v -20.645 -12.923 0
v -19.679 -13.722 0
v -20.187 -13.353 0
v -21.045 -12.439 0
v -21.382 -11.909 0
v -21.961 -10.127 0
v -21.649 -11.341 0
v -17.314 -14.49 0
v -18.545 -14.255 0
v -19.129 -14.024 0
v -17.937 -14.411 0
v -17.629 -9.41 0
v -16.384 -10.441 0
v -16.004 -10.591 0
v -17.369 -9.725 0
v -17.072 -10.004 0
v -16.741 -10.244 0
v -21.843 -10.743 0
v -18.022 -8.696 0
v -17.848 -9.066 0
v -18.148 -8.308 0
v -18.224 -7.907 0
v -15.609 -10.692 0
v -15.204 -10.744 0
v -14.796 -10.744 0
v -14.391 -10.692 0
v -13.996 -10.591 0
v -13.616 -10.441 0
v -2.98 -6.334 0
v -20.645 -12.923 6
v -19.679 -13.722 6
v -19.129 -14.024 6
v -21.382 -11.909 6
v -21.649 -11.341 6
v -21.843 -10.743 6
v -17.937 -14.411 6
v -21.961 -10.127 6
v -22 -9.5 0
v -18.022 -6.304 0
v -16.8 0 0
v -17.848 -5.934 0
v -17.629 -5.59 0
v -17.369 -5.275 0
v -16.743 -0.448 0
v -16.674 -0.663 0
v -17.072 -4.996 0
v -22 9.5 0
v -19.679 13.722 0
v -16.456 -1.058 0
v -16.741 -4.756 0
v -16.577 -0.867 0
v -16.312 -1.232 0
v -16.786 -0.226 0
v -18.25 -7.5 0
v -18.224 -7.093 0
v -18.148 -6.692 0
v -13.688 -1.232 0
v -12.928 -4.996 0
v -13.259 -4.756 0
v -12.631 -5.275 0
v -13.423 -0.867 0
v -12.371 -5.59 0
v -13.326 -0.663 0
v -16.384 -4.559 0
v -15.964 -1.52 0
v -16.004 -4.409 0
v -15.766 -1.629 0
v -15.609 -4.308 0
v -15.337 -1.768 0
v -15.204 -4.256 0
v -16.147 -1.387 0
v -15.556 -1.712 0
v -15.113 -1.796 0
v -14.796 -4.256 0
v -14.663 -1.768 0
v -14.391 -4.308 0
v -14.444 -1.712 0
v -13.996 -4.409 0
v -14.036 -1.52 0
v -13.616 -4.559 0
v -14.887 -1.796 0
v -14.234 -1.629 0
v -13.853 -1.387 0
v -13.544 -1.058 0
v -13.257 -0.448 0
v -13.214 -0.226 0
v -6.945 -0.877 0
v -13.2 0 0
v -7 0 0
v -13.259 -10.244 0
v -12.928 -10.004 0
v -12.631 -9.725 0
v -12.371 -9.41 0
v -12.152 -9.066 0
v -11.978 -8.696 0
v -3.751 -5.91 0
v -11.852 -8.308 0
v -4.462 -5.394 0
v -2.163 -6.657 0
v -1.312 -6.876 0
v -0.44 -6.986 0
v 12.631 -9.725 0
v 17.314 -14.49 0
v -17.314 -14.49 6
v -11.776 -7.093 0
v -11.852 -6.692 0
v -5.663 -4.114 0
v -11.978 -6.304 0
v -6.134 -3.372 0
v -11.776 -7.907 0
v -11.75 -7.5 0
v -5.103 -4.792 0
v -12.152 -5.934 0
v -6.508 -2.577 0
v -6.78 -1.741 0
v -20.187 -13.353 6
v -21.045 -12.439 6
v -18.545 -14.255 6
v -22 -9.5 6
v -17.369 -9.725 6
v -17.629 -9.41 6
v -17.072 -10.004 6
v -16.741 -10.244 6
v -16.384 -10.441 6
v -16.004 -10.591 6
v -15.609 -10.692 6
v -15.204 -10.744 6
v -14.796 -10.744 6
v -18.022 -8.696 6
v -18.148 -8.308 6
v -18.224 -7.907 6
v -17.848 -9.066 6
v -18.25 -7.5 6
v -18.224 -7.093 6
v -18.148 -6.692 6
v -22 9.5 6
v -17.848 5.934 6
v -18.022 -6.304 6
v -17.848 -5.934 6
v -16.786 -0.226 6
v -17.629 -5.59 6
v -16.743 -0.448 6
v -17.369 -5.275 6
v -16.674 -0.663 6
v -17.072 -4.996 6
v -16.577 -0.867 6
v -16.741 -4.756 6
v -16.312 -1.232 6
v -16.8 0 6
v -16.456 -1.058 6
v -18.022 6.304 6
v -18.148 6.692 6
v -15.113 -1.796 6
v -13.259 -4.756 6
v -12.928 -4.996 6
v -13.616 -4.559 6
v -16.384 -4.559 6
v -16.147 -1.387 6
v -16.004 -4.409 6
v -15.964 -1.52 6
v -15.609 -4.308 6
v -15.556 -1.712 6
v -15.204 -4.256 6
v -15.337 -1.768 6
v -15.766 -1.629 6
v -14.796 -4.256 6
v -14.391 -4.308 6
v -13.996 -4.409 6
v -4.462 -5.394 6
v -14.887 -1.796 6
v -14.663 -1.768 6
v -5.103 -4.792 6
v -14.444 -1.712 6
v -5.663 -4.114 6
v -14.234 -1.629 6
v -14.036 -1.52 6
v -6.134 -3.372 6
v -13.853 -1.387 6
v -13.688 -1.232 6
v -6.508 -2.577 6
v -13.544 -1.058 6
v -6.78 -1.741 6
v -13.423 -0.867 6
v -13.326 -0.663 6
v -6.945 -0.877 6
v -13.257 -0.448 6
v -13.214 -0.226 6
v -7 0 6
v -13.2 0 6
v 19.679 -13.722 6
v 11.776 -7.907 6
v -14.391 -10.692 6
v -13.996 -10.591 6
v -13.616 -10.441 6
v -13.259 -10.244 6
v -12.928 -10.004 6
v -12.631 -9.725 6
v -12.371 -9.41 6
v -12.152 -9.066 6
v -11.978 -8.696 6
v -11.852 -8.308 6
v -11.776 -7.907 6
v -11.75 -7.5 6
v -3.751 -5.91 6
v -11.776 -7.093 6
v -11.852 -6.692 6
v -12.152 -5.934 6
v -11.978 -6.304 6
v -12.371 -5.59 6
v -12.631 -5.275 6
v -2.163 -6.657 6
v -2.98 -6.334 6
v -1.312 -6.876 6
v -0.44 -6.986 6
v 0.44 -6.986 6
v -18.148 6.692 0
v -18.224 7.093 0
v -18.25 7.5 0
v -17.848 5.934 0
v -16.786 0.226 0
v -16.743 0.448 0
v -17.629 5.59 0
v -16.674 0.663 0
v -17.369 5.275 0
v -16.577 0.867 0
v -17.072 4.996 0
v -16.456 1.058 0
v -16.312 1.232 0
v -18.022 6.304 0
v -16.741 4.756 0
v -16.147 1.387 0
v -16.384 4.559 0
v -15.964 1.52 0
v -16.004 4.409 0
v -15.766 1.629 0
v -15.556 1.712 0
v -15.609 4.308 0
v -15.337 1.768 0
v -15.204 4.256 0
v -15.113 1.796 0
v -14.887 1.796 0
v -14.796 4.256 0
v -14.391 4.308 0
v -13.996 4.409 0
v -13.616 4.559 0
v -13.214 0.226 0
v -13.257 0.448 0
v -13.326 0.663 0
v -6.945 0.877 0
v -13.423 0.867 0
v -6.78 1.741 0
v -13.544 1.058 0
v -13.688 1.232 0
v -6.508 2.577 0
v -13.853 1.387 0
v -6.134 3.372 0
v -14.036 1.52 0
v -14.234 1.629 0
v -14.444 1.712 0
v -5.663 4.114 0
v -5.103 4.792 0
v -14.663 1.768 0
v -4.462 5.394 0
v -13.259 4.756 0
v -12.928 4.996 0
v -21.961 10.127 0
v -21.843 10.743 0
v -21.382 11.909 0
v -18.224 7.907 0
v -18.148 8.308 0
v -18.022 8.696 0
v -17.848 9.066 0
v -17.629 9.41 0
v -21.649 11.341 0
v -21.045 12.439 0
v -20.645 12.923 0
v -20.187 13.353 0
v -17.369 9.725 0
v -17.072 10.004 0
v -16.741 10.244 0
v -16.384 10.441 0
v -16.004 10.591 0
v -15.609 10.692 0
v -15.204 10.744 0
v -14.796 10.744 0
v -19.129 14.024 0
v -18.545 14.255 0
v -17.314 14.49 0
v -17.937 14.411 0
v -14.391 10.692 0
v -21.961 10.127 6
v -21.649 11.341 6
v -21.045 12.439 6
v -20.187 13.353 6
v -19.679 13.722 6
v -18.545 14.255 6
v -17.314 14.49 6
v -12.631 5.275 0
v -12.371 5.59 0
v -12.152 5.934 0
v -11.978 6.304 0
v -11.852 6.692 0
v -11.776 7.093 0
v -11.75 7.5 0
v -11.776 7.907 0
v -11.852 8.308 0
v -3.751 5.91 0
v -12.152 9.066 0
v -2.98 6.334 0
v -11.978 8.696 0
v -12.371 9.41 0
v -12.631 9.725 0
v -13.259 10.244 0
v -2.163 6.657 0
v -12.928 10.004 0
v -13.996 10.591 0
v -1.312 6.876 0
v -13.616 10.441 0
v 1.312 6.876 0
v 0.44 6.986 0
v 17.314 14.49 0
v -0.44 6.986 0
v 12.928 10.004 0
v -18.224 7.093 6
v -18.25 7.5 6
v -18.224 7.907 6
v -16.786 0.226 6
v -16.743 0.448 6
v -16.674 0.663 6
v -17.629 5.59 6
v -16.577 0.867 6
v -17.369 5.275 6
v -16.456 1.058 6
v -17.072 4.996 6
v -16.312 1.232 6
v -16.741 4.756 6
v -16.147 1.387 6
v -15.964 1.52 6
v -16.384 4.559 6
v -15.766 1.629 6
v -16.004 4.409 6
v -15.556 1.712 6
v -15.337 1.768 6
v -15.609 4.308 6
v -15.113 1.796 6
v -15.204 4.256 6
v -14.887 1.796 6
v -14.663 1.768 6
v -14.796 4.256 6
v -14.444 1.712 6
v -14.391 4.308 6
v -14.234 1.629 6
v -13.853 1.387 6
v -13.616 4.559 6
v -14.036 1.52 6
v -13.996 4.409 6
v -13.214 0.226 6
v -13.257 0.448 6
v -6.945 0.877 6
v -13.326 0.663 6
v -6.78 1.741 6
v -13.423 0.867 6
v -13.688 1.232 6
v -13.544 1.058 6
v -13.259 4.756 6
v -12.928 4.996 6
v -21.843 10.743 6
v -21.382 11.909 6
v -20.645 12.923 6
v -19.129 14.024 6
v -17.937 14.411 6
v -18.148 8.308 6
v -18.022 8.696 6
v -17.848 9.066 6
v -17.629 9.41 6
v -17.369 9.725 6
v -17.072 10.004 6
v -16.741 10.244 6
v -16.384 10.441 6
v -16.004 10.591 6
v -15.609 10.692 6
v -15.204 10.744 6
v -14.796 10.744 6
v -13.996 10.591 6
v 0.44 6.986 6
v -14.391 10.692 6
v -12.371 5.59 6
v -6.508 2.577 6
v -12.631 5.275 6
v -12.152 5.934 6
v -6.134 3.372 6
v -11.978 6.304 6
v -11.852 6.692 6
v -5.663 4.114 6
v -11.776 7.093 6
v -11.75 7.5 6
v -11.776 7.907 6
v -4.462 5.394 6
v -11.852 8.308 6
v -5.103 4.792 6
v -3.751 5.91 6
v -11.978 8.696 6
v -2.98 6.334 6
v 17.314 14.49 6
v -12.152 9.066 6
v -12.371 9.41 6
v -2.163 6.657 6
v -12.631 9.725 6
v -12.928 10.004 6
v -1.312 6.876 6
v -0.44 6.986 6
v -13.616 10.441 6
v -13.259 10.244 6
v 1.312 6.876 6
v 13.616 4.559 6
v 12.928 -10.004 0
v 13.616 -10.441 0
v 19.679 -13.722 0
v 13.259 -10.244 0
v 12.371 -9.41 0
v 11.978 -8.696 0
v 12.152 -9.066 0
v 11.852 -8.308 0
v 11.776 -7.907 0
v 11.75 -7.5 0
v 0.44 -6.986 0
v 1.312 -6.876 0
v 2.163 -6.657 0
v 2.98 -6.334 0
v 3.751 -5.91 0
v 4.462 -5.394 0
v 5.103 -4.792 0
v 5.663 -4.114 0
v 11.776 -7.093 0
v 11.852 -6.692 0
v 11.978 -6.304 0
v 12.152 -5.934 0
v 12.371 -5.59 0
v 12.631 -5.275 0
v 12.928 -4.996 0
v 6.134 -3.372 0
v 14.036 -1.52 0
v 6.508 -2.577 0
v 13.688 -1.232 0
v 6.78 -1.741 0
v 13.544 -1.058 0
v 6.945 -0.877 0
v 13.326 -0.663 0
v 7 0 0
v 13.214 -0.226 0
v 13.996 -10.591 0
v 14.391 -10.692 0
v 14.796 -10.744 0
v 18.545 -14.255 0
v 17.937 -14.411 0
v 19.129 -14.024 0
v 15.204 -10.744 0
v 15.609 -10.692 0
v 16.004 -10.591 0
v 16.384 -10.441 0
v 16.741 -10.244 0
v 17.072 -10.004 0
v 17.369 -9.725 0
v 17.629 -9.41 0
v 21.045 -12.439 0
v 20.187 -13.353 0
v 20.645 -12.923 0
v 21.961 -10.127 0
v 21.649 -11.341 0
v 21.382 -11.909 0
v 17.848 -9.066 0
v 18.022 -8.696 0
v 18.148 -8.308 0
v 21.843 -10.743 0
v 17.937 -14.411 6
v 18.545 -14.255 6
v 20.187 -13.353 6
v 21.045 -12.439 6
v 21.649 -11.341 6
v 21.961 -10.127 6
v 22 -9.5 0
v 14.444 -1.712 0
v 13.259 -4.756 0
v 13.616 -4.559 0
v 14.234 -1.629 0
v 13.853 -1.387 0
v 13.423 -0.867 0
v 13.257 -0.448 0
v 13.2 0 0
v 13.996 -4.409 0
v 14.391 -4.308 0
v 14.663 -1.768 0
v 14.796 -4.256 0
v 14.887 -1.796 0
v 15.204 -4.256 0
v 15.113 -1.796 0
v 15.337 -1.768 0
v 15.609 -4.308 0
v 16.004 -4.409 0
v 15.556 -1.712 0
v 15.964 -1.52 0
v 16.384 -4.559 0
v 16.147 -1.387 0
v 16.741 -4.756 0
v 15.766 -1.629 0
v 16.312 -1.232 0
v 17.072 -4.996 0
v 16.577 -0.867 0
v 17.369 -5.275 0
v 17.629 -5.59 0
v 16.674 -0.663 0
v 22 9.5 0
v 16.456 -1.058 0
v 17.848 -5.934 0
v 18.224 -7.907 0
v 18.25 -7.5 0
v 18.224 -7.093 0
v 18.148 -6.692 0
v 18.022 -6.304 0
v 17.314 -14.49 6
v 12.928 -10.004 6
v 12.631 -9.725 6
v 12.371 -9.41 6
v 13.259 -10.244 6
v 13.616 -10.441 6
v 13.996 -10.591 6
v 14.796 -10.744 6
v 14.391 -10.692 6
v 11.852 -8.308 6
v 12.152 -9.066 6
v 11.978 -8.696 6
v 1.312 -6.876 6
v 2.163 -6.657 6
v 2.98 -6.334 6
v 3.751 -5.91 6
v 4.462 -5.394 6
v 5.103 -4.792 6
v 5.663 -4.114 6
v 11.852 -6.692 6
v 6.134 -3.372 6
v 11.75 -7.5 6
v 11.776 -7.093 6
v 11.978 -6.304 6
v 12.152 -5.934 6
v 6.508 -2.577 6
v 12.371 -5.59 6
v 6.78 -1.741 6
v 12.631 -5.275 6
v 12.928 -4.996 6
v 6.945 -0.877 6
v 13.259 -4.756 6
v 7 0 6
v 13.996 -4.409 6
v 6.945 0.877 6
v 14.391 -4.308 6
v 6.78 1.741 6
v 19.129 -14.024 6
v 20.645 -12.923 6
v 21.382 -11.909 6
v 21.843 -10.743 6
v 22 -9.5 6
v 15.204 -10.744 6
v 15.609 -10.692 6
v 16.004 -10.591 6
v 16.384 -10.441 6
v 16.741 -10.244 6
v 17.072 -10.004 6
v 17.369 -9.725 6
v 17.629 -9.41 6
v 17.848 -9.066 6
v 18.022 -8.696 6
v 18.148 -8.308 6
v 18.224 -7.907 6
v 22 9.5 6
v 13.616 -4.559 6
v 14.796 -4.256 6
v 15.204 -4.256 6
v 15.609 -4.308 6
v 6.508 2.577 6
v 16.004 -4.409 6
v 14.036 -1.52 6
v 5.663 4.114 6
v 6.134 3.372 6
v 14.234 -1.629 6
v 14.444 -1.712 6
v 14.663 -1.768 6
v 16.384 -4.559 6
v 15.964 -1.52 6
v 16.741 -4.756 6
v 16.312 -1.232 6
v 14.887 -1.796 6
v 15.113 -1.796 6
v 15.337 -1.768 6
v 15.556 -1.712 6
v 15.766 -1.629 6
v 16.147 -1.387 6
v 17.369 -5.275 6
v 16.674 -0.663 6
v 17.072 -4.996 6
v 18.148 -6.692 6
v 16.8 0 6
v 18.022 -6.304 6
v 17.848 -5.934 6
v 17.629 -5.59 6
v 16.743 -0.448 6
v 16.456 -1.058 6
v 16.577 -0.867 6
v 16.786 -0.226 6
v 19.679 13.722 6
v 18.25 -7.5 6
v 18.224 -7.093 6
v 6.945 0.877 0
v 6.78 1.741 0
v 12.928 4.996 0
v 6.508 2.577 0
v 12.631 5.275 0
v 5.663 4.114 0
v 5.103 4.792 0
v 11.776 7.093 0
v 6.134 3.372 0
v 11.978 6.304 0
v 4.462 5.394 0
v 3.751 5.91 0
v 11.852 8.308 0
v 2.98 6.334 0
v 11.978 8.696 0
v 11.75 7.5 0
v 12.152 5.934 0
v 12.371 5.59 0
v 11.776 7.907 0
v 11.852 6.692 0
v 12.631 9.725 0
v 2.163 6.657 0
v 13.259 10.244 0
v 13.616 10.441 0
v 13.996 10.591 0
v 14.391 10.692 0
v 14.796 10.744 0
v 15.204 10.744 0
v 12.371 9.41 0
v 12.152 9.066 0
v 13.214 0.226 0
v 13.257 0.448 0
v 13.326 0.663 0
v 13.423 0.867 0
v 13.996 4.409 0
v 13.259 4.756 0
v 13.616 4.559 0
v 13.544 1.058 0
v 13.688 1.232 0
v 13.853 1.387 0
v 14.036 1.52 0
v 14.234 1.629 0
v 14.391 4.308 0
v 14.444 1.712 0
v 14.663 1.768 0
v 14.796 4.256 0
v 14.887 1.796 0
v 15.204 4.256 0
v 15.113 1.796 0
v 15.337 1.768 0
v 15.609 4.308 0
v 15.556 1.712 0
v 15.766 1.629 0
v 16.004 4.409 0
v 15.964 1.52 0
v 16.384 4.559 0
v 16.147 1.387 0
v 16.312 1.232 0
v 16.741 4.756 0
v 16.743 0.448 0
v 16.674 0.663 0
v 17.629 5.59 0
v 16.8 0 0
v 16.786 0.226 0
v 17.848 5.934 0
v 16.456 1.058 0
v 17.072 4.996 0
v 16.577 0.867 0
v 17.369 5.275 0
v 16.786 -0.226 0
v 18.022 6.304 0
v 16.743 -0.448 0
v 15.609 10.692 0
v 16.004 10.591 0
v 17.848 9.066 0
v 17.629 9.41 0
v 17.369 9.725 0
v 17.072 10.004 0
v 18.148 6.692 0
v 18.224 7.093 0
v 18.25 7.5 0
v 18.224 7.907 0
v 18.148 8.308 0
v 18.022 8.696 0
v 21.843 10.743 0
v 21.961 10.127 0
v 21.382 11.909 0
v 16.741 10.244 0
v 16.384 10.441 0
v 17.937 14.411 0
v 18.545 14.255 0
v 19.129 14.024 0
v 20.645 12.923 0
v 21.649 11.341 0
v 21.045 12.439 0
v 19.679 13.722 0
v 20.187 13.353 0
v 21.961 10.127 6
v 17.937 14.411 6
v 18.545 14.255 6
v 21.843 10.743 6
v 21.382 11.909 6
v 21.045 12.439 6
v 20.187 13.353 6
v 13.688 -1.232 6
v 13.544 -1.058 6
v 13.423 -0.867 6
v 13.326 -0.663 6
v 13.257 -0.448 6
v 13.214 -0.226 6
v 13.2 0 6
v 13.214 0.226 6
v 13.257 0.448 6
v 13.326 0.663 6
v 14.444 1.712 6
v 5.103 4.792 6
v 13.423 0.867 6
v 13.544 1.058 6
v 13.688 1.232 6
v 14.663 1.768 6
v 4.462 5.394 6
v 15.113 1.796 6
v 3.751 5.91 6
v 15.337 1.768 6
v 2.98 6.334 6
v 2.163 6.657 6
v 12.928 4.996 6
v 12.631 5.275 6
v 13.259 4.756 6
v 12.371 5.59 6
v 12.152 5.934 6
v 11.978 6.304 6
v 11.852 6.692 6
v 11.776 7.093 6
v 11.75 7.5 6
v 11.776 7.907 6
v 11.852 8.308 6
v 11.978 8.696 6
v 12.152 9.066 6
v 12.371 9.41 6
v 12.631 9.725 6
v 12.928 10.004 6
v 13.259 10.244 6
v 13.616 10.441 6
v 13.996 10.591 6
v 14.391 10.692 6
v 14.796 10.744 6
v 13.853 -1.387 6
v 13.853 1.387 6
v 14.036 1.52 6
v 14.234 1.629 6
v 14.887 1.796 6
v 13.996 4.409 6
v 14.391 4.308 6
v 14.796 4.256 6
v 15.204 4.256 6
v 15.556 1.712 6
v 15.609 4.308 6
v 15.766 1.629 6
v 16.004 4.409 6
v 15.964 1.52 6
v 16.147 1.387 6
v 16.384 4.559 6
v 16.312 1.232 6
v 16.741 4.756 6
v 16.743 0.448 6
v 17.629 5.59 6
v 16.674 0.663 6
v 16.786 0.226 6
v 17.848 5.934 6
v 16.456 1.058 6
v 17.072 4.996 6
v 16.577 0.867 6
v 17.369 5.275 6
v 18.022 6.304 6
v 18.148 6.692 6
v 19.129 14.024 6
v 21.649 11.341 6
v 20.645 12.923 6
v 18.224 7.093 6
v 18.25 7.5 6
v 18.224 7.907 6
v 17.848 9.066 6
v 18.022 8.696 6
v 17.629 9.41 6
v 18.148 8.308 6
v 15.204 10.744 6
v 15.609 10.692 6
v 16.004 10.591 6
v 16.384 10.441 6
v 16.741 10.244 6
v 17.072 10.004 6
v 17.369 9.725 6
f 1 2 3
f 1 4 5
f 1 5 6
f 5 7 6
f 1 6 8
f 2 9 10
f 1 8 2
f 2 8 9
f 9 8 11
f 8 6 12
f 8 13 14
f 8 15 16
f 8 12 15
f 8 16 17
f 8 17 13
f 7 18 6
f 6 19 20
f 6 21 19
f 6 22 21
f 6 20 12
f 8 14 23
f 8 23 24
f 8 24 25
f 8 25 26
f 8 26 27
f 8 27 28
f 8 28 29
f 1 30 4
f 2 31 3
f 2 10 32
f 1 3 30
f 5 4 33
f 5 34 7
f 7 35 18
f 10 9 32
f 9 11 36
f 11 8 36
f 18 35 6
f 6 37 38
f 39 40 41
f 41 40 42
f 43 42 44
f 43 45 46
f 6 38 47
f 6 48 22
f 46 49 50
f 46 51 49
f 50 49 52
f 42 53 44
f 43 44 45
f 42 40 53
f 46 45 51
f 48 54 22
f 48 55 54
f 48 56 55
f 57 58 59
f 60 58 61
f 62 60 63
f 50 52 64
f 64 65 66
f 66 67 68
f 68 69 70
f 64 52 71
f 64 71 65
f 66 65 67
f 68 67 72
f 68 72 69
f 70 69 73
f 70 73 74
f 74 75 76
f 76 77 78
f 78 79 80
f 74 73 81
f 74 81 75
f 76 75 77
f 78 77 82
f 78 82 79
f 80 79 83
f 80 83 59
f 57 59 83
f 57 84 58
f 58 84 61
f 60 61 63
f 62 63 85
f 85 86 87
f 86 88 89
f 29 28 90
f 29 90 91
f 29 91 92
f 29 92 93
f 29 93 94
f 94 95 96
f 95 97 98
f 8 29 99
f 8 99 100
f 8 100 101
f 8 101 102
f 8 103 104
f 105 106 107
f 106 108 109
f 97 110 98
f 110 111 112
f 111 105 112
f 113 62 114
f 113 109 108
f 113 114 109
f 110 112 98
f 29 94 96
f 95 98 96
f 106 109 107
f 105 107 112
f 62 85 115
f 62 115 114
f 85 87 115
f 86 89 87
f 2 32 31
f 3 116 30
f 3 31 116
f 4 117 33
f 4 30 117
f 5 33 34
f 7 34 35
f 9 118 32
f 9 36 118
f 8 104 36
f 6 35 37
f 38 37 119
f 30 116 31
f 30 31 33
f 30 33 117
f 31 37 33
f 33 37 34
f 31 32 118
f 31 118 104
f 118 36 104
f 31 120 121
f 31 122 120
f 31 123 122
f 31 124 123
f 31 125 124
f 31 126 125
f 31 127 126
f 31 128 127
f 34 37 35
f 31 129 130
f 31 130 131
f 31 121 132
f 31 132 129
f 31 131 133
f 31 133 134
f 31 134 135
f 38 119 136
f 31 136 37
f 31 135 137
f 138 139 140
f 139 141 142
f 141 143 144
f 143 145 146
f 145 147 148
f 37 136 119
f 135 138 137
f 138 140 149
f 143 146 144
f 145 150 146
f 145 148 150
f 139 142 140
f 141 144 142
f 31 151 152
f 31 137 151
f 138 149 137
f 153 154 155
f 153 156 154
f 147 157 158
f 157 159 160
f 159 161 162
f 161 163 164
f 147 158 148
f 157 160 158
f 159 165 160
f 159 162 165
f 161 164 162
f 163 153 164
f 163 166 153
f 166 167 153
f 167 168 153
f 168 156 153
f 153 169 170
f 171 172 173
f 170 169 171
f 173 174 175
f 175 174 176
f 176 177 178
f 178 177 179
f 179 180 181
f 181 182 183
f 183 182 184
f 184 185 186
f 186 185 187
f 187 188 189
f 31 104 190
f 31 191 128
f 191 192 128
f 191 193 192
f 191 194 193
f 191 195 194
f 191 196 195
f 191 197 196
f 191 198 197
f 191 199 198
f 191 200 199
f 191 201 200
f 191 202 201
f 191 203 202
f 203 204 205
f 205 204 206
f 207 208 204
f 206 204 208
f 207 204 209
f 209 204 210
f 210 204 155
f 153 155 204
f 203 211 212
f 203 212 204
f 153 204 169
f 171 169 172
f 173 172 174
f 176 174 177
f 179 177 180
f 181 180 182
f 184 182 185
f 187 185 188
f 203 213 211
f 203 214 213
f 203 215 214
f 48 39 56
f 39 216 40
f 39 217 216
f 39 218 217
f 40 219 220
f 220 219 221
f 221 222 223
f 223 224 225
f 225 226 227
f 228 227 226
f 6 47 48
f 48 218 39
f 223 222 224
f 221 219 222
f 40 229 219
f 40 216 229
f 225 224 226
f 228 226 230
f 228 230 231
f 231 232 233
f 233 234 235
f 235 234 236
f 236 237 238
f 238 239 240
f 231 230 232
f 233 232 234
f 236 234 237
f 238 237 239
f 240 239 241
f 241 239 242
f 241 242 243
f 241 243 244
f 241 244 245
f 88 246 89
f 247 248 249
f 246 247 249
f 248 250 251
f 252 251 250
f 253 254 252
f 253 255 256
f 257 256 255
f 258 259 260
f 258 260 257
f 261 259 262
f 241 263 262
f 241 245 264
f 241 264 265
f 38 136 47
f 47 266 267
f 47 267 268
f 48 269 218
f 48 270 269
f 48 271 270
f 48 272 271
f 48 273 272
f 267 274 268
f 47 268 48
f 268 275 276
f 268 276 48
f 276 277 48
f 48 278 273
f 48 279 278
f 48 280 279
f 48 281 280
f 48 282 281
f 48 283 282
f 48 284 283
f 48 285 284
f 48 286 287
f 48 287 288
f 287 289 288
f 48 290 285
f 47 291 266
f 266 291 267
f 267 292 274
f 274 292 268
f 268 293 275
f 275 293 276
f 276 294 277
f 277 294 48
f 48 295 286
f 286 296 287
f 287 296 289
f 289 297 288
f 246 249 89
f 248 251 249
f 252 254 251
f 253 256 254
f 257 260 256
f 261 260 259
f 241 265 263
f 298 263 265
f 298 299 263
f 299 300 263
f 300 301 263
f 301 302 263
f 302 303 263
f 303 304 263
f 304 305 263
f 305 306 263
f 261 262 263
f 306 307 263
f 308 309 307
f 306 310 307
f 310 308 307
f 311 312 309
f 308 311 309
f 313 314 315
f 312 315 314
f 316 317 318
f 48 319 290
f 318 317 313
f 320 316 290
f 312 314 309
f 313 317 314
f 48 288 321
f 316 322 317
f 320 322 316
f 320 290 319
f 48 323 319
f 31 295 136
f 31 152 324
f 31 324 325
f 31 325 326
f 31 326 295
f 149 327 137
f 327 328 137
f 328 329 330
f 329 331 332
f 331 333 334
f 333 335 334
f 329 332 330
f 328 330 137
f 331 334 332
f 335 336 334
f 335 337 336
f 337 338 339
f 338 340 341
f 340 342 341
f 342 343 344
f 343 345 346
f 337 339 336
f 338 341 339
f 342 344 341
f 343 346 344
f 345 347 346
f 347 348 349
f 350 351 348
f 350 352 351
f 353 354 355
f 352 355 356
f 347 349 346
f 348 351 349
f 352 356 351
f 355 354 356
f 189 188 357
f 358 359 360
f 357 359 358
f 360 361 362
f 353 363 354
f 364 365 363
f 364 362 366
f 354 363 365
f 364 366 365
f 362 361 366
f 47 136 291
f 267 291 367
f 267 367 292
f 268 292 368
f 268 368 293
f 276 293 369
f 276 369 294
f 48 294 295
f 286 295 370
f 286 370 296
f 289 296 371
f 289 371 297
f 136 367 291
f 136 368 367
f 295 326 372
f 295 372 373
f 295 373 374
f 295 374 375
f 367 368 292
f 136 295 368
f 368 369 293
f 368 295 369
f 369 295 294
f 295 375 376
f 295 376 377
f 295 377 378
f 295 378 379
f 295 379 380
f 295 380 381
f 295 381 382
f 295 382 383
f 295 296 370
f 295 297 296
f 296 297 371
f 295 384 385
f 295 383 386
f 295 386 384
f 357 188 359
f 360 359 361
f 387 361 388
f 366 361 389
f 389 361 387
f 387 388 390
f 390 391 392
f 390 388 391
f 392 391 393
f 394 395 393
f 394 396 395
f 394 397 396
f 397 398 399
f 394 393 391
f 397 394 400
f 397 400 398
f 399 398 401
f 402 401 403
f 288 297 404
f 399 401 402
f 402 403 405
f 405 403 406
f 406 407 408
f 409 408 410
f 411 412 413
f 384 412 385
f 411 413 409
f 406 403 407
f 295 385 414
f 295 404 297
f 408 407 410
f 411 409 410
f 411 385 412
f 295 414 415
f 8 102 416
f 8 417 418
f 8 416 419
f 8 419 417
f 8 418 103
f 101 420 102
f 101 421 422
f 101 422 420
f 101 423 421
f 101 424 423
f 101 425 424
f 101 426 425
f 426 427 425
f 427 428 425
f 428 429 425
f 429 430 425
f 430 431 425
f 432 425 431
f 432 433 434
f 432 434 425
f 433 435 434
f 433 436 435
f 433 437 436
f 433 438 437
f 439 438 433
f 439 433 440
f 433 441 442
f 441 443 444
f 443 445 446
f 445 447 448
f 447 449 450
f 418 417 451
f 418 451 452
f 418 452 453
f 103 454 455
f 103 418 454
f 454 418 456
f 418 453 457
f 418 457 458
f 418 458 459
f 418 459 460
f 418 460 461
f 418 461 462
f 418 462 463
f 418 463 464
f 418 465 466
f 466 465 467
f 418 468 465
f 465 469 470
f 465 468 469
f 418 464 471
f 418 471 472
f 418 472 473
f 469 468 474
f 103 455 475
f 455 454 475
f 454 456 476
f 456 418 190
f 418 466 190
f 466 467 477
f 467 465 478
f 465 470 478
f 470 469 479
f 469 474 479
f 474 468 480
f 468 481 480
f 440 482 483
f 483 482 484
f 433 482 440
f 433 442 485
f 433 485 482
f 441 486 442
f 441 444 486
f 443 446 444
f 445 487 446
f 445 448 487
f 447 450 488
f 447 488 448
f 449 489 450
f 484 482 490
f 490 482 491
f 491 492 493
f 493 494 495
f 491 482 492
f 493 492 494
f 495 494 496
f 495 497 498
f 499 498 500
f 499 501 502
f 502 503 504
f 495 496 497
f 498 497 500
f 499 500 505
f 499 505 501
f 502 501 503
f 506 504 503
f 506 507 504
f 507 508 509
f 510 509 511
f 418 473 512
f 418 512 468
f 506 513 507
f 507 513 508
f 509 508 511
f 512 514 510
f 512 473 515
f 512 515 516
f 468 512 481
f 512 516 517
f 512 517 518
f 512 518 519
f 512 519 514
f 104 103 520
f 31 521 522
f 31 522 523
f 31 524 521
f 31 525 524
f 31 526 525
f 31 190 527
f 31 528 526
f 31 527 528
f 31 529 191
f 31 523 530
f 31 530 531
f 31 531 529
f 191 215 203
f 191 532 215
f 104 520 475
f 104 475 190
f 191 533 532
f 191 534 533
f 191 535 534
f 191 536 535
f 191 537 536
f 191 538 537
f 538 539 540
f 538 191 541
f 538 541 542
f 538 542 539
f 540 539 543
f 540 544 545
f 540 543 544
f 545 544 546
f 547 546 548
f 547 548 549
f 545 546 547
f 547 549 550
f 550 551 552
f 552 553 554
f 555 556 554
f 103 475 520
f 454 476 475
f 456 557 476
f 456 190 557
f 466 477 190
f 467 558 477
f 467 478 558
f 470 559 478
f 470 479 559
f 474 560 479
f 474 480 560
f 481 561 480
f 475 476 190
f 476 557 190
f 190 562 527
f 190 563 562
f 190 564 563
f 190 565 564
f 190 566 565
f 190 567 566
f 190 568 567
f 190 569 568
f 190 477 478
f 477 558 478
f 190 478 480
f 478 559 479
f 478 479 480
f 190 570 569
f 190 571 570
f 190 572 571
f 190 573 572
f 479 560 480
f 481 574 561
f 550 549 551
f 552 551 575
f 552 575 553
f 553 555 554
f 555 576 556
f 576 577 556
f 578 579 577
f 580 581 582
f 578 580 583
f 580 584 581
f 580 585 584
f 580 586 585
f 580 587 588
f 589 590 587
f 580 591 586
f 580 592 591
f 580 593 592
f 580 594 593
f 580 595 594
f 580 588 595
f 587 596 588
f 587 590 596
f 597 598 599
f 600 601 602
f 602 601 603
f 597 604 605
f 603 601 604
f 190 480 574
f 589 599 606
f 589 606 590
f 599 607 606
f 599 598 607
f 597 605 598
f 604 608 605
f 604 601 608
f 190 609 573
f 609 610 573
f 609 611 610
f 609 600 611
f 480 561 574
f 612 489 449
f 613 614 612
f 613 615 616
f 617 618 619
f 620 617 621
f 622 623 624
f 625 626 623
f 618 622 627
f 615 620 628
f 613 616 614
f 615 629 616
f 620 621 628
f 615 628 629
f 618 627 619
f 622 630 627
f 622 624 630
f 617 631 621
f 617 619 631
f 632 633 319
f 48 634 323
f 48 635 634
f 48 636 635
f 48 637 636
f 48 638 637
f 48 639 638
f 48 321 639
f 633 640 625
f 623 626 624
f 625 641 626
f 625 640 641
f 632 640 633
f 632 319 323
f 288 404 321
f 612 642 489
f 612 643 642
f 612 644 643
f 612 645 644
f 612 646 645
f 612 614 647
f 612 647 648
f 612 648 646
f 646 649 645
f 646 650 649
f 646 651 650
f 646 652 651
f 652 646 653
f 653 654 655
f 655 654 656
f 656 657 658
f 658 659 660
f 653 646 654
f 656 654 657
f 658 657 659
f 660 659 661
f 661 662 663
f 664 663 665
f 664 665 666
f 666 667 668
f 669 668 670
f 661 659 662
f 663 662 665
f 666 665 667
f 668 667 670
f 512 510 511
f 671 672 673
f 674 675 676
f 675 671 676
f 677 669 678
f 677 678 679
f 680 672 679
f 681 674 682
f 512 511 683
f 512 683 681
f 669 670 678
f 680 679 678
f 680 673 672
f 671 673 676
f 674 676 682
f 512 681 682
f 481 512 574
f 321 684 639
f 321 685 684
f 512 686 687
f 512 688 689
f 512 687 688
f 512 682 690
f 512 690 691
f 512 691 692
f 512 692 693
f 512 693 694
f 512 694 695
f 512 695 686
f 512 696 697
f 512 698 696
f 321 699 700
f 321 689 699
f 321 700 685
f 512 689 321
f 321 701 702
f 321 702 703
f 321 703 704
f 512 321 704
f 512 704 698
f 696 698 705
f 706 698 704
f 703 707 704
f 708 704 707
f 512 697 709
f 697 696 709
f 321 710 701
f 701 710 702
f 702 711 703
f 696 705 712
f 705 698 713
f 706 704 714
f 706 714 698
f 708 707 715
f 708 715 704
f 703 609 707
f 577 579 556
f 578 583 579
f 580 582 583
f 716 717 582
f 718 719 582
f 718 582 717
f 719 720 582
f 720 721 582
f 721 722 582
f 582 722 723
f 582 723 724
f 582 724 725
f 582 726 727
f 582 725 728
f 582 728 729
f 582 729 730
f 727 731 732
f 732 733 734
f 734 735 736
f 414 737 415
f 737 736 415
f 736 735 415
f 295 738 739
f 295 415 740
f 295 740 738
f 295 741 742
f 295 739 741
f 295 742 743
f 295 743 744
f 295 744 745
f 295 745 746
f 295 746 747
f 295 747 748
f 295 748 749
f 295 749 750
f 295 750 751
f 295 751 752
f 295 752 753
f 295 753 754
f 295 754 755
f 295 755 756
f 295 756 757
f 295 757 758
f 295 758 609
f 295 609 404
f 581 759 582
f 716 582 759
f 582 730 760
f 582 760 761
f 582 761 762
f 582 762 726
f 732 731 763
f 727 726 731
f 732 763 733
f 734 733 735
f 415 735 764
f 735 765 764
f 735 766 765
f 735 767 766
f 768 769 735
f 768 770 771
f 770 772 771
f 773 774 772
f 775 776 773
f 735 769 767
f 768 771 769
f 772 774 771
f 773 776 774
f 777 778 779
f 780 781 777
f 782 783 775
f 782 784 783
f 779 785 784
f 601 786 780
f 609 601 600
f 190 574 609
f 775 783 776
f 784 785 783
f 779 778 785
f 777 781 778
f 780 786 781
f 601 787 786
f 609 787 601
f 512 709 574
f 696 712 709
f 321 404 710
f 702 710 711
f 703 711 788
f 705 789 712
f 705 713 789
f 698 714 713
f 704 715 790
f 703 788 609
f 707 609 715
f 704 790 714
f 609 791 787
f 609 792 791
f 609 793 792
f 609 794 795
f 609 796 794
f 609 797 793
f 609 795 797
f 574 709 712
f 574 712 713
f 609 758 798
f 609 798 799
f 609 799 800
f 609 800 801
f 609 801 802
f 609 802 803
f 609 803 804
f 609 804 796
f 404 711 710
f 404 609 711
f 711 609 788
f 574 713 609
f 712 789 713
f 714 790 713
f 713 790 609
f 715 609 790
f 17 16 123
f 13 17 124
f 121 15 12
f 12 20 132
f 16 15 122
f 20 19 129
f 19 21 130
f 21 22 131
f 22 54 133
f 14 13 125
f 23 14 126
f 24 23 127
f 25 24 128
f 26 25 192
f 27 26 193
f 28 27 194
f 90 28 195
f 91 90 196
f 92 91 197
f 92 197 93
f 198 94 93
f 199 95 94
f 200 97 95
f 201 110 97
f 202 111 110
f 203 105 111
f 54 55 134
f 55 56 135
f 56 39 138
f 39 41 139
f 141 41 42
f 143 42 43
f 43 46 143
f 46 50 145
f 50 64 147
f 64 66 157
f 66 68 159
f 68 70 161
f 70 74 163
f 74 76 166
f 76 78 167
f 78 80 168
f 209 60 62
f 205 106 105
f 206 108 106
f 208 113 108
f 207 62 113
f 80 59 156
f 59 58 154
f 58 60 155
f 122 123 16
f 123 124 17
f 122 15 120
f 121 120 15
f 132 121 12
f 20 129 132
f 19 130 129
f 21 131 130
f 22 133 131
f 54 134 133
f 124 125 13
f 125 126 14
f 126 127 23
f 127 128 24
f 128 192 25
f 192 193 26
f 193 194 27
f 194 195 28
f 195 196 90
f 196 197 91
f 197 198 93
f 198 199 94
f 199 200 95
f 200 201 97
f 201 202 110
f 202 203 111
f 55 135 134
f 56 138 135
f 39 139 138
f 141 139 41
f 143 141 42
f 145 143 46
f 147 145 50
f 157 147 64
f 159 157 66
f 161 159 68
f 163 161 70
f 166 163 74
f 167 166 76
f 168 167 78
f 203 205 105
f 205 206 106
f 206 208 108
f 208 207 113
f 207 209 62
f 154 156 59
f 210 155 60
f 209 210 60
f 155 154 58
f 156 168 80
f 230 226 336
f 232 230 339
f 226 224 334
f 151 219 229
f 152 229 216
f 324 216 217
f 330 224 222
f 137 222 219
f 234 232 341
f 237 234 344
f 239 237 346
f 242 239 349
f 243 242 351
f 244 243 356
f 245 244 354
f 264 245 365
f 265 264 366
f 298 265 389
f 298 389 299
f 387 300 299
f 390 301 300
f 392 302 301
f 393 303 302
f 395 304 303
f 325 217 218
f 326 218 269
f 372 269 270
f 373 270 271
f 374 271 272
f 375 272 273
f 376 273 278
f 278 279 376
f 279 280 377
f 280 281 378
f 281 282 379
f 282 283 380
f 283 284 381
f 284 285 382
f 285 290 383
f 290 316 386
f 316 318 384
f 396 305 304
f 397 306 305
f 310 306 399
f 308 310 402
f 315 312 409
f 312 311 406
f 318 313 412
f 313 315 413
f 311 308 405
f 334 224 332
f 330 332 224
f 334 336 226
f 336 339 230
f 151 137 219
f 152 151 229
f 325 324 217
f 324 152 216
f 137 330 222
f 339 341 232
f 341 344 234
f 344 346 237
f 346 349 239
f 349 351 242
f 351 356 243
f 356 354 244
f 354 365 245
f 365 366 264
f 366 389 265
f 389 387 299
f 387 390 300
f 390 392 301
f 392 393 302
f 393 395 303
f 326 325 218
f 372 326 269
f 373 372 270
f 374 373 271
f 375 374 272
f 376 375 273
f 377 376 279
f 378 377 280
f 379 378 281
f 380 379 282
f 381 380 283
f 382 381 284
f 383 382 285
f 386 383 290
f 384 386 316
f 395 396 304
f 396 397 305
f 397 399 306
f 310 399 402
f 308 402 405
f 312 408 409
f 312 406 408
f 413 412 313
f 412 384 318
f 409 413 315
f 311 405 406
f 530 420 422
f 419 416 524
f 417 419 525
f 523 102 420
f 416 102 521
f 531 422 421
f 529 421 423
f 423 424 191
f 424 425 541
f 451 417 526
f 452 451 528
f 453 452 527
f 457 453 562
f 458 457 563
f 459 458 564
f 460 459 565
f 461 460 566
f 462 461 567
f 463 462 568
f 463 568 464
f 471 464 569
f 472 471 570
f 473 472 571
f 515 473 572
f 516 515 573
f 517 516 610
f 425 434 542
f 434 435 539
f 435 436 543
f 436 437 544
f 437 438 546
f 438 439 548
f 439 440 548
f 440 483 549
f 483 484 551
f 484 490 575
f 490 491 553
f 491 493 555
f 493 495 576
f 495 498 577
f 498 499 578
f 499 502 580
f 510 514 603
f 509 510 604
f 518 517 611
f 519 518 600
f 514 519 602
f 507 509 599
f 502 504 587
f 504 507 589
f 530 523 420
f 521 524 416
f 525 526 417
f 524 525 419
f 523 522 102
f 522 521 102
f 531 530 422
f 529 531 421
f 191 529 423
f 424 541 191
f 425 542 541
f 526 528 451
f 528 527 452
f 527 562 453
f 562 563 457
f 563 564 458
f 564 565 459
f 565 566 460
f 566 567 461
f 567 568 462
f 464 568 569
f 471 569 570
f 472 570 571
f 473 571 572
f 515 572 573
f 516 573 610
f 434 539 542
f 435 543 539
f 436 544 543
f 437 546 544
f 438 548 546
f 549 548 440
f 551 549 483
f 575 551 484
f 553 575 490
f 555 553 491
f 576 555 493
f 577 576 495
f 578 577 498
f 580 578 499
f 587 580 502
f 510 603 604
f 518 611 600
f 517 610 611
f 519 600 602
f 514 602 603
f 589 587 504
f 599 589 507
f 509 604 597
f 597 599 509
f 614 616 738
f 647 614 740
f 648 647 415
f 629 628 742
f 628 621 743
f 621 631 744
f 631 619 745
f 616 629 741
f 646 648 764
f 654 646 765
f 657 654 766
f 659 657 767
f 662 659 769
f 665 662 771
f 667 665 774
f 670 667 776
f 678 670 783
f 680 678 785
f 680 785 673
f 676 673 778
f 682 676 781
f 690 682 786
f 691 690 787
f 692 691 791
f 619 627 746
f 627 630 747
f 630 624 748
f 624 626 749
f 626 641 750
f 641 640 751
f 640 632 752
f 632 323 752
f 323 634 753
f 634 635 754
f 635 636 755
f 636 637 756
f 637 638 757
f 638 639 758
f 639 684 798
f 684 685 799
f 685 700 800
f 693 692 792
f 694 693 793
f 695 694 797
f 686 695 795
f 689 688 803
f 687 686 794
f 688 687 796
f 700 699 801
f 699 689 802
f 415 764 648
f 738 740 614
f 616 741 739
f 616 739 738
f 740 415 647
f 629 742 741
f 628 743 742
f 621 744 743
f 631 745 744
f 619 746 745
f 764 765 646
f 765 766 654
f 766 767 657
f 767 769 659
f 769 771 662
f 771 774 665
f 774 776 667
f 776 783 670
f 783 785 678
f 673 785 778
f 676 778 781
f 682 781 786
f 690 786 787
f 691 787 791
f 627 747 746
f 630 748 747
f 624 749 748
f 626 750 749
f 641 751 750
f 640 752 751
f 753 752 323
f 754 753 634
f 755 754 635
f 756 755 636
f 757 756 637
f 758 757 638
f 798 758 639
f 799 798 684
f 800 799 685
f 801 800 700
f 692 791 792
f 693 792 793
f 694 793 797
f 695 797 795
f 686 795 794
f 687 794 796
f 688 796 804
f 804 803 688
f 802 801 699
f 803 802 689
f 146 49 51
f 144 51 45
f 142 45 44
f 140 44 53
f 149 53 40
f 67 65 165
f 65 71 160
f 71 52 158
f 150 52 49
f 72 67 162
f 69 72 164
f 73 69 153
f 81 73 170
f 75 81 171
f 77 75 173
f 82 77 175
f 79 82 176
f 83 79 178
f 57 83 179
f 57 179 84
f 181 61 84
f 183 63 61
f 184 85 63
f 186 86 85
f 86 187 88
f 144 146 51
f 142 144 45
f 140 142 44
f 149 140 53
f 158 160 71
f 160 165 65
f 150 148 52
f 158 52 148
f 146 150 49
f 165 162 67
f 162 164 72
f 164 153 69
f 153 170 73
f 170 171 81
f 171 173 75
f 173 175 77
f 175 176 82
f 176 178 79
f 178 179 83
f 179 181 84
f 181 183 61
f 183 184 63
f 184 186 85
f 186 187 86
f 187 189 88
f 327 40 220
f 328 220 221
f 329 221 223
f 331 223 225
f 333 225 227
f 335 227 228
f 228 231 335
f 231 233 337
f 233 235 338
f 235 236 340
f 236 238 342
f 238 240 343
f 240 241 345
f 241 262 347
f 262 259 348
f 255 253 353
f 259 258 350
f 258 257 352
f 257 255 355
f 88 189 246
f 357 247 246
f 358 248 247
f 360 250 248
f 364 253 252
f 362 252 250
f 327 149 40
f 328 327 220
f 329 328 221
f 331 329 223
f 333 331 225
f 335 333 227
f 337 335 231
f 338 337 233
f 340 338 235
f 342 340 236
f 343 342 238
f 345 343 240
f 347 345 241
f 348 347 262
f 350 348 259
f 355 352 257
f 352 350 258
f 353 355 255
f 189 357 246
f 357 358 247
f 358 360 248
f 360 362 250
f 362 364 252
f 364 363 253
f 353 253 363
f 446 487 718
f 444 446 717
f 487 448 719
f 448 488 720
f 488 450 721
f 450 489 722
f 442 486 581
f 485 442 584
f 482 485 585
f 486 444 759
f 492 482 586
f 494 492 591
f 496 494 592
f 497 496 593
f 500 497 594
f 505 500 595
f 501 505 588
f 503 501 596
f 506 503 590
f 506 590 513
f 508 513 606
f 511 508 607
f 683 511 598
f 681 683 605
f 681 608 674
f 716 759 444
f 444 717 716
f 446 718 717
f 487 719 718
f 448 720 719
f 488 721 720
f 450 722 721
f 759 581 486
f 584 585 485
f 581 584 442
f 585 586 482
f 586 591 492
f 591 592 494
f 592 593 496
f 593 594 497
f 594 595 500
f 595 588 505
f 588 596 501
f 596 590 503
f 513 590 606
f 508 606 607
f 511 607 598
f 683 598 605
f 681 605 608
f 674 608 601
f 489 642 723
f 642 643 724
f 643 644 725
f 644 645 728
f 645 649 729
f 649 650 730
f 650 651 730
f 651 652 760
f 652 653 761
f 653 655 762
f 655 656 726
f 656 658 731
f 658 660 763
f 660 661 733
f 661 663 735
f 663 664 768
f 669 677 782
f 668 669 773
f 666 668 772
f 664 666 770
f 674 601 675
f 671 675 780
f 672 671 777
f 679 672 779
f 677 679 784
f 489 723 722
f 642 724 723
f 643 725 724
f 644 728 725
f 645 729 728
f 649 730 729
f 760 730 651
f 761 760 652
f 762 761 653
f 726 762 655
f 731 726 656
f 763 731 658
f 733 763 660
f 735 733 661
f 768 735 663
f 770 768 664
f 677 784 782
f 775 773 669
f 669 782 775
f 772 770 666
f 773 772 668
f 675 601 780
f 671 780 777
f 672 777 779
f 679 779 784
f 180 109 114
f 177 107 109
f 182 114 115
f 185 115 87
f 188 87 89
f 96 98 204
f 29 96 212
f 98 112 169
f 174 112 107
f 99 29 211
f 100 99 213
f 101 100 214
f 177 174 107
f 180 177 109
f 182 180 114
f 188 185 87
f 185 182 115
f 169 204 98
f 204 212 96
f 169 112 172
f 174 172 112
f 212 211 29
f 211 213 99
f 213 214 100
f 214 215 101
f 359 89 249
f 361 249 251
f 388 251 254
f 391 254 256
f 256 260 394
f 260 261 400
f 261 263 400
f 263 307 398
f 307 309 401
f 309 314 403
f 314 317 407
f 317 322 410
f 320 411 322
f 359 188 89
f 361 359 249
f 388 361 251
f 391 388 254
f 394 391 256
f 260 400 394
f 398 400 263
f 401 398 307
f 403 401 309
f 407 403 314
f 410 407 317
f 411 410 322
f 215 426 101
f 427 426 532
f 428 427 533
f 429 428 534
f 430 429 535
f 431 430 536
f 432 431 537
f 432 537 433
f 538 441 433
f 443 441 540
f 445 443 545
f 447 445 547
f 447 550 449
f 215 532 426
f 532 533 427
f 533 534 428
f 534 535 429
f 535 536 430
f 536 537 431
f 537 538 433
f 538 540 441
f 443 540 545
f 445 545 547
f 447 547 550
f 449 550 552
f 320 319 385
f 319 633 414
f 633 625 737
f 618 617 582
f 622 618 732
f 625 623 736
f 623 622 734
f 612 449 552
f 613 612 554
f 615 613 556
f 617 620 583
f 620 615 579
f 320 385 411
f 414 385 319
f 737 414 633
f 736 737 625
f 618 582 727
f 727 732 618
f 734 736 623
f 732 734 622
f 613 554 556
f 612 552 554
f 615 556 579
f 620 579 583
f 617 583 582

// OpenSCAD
$fn = 50;

difference() {
	union() {
		hull() {
			translate(v = [-17.0, 9.5, 0]) {
				cylinder(h = 6, r = 5);
			}
			translate(v = [17.0, 9.5, 0]) {
				cylinder(h = 6, r = 5);
			}
			translate(v = [-17.0, -9.5, 0]) {
				cylinder(h = 6, r = 5);
			}
			translate(v = [17.0, -9.5, 0]) {
				cylinder(h = 6, r = 5);
			}
		}
	}
	union() {
		translate(v = [-15.0, -7.5, 0]) {
			cylinder(h = 6, r = 3.25);
		}
		translate(v = [-15.0, 7.5, 0]) {
			cylinder(h = 6, r = 3.25);
		}
		translate(v = [15.0, -7.5, 0]) {
			cylinder(h = 6, r = 3.25);
		}
		translate(v = [15.0, 7.5, 0]) {
			cylinder(h = 6, r = 3.25);
		}
		translate(v = [-15.0, 0.0, 0]) {
			cylinder(h = 6, r = 1.8);
		}
		translate(v = [15.0, 0.0, 0]) {
			cylinder(h = 6, r = 1.8);
		}
		cylinder(h = 6, r = 7.0);
	}
}
